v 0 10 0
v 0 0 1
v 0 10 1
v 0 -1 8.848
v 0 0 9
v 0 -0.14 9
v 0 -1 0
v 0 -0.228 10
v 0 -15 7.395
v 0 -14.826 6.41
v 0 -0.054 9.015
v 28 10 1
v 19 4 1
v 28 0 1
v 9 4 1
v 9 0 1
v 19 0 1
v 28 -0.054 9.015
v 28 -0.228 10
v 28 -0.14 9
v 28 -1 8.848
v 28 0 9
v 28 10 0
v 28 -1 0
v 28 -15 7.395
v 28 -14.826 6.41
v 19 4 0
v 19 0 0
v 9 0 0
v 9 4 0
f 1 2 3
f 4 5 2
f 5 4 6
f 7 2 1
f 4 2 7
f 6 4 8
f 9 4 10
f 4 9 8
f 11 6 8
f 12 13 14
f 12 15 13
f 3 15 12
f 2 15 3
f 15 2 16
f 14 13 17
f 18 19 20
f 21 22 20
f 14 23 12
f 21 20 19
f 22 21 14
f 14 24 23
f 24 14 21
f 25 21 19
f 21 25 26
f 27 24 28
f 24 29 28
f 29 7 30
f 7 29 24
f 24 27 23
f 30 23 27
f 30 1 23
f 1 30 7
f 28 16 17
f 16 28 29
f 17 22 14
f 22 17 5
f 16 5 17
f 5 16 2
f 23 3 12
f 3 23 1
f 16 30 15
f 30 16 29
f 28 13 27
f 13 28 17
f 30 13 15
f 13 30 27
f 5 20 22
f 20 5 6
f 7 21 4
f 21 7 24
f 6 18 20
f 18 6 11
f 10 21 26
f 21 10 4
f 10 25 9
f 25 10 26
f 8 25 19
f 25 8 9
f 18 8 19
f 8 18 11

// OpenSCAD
// Written by Jordi Riera-Babures <jrierab@gmail.com>
// Parasol for Pi Cam enclosure V1.0 - Parameterisized for Customizer
//
// To the extent possible under law, the author(s) have dedicated all
// copyright and related and neighboring rights to this software to the
// public domain worldwide. This software is distributed without any
// warranty.
//
// You should have received a copy of the CC0 Public Domain
// Dedication along with this software.
// If not, see <http://creativecommons.org/publicdomain/zero/1.0/>.

// Length of the enclosure (mm)
Top_Length = 28;          // [10:50]
// Width of the enclosure (mm)
Top_Width = 10;           // [5:20]
// Length of the hole (mm)
Hole_Length = 10;         // [1:50]
// Width of the hole (mm)
Hole_Width = 4;           // [1:20]
// Wall of the parasol (mm)
Parasol_wall = 9;        // [0:20]
// Length of the parasol (mm)
Parasol_Length = 15;      // [5:30]
// Angle of the parasol (mm)
Parasol_Angle = -10;      // [-30:30]

// Wall thickness (mm)
Wall_Thickness = 1;       // [1:5]


difference() {
    cube([Top_Length, Top_Width, Wall_Thickness]);
    translate([(Top_Length - Hole_Length)/2, 0, 0])
        cube([Hole_Length, Hole_Width, Wall_Thickness]);
}
translate([0, -Wall_Thickness, 0])
    cube([Top_Length, Wall_Thickness, Parasol_wall]);

translate([0, -Parasol_Length, Parasol_wall + Parasol_Length*sin(Parasol_Angle) + Wall_Thickness])
    mirror(v=[0,0,1]) rotate([Parasol_Angle, 0, 0])
    color("red") cube([Top_Length, Parasol_Length, Wall_Thickness]);
